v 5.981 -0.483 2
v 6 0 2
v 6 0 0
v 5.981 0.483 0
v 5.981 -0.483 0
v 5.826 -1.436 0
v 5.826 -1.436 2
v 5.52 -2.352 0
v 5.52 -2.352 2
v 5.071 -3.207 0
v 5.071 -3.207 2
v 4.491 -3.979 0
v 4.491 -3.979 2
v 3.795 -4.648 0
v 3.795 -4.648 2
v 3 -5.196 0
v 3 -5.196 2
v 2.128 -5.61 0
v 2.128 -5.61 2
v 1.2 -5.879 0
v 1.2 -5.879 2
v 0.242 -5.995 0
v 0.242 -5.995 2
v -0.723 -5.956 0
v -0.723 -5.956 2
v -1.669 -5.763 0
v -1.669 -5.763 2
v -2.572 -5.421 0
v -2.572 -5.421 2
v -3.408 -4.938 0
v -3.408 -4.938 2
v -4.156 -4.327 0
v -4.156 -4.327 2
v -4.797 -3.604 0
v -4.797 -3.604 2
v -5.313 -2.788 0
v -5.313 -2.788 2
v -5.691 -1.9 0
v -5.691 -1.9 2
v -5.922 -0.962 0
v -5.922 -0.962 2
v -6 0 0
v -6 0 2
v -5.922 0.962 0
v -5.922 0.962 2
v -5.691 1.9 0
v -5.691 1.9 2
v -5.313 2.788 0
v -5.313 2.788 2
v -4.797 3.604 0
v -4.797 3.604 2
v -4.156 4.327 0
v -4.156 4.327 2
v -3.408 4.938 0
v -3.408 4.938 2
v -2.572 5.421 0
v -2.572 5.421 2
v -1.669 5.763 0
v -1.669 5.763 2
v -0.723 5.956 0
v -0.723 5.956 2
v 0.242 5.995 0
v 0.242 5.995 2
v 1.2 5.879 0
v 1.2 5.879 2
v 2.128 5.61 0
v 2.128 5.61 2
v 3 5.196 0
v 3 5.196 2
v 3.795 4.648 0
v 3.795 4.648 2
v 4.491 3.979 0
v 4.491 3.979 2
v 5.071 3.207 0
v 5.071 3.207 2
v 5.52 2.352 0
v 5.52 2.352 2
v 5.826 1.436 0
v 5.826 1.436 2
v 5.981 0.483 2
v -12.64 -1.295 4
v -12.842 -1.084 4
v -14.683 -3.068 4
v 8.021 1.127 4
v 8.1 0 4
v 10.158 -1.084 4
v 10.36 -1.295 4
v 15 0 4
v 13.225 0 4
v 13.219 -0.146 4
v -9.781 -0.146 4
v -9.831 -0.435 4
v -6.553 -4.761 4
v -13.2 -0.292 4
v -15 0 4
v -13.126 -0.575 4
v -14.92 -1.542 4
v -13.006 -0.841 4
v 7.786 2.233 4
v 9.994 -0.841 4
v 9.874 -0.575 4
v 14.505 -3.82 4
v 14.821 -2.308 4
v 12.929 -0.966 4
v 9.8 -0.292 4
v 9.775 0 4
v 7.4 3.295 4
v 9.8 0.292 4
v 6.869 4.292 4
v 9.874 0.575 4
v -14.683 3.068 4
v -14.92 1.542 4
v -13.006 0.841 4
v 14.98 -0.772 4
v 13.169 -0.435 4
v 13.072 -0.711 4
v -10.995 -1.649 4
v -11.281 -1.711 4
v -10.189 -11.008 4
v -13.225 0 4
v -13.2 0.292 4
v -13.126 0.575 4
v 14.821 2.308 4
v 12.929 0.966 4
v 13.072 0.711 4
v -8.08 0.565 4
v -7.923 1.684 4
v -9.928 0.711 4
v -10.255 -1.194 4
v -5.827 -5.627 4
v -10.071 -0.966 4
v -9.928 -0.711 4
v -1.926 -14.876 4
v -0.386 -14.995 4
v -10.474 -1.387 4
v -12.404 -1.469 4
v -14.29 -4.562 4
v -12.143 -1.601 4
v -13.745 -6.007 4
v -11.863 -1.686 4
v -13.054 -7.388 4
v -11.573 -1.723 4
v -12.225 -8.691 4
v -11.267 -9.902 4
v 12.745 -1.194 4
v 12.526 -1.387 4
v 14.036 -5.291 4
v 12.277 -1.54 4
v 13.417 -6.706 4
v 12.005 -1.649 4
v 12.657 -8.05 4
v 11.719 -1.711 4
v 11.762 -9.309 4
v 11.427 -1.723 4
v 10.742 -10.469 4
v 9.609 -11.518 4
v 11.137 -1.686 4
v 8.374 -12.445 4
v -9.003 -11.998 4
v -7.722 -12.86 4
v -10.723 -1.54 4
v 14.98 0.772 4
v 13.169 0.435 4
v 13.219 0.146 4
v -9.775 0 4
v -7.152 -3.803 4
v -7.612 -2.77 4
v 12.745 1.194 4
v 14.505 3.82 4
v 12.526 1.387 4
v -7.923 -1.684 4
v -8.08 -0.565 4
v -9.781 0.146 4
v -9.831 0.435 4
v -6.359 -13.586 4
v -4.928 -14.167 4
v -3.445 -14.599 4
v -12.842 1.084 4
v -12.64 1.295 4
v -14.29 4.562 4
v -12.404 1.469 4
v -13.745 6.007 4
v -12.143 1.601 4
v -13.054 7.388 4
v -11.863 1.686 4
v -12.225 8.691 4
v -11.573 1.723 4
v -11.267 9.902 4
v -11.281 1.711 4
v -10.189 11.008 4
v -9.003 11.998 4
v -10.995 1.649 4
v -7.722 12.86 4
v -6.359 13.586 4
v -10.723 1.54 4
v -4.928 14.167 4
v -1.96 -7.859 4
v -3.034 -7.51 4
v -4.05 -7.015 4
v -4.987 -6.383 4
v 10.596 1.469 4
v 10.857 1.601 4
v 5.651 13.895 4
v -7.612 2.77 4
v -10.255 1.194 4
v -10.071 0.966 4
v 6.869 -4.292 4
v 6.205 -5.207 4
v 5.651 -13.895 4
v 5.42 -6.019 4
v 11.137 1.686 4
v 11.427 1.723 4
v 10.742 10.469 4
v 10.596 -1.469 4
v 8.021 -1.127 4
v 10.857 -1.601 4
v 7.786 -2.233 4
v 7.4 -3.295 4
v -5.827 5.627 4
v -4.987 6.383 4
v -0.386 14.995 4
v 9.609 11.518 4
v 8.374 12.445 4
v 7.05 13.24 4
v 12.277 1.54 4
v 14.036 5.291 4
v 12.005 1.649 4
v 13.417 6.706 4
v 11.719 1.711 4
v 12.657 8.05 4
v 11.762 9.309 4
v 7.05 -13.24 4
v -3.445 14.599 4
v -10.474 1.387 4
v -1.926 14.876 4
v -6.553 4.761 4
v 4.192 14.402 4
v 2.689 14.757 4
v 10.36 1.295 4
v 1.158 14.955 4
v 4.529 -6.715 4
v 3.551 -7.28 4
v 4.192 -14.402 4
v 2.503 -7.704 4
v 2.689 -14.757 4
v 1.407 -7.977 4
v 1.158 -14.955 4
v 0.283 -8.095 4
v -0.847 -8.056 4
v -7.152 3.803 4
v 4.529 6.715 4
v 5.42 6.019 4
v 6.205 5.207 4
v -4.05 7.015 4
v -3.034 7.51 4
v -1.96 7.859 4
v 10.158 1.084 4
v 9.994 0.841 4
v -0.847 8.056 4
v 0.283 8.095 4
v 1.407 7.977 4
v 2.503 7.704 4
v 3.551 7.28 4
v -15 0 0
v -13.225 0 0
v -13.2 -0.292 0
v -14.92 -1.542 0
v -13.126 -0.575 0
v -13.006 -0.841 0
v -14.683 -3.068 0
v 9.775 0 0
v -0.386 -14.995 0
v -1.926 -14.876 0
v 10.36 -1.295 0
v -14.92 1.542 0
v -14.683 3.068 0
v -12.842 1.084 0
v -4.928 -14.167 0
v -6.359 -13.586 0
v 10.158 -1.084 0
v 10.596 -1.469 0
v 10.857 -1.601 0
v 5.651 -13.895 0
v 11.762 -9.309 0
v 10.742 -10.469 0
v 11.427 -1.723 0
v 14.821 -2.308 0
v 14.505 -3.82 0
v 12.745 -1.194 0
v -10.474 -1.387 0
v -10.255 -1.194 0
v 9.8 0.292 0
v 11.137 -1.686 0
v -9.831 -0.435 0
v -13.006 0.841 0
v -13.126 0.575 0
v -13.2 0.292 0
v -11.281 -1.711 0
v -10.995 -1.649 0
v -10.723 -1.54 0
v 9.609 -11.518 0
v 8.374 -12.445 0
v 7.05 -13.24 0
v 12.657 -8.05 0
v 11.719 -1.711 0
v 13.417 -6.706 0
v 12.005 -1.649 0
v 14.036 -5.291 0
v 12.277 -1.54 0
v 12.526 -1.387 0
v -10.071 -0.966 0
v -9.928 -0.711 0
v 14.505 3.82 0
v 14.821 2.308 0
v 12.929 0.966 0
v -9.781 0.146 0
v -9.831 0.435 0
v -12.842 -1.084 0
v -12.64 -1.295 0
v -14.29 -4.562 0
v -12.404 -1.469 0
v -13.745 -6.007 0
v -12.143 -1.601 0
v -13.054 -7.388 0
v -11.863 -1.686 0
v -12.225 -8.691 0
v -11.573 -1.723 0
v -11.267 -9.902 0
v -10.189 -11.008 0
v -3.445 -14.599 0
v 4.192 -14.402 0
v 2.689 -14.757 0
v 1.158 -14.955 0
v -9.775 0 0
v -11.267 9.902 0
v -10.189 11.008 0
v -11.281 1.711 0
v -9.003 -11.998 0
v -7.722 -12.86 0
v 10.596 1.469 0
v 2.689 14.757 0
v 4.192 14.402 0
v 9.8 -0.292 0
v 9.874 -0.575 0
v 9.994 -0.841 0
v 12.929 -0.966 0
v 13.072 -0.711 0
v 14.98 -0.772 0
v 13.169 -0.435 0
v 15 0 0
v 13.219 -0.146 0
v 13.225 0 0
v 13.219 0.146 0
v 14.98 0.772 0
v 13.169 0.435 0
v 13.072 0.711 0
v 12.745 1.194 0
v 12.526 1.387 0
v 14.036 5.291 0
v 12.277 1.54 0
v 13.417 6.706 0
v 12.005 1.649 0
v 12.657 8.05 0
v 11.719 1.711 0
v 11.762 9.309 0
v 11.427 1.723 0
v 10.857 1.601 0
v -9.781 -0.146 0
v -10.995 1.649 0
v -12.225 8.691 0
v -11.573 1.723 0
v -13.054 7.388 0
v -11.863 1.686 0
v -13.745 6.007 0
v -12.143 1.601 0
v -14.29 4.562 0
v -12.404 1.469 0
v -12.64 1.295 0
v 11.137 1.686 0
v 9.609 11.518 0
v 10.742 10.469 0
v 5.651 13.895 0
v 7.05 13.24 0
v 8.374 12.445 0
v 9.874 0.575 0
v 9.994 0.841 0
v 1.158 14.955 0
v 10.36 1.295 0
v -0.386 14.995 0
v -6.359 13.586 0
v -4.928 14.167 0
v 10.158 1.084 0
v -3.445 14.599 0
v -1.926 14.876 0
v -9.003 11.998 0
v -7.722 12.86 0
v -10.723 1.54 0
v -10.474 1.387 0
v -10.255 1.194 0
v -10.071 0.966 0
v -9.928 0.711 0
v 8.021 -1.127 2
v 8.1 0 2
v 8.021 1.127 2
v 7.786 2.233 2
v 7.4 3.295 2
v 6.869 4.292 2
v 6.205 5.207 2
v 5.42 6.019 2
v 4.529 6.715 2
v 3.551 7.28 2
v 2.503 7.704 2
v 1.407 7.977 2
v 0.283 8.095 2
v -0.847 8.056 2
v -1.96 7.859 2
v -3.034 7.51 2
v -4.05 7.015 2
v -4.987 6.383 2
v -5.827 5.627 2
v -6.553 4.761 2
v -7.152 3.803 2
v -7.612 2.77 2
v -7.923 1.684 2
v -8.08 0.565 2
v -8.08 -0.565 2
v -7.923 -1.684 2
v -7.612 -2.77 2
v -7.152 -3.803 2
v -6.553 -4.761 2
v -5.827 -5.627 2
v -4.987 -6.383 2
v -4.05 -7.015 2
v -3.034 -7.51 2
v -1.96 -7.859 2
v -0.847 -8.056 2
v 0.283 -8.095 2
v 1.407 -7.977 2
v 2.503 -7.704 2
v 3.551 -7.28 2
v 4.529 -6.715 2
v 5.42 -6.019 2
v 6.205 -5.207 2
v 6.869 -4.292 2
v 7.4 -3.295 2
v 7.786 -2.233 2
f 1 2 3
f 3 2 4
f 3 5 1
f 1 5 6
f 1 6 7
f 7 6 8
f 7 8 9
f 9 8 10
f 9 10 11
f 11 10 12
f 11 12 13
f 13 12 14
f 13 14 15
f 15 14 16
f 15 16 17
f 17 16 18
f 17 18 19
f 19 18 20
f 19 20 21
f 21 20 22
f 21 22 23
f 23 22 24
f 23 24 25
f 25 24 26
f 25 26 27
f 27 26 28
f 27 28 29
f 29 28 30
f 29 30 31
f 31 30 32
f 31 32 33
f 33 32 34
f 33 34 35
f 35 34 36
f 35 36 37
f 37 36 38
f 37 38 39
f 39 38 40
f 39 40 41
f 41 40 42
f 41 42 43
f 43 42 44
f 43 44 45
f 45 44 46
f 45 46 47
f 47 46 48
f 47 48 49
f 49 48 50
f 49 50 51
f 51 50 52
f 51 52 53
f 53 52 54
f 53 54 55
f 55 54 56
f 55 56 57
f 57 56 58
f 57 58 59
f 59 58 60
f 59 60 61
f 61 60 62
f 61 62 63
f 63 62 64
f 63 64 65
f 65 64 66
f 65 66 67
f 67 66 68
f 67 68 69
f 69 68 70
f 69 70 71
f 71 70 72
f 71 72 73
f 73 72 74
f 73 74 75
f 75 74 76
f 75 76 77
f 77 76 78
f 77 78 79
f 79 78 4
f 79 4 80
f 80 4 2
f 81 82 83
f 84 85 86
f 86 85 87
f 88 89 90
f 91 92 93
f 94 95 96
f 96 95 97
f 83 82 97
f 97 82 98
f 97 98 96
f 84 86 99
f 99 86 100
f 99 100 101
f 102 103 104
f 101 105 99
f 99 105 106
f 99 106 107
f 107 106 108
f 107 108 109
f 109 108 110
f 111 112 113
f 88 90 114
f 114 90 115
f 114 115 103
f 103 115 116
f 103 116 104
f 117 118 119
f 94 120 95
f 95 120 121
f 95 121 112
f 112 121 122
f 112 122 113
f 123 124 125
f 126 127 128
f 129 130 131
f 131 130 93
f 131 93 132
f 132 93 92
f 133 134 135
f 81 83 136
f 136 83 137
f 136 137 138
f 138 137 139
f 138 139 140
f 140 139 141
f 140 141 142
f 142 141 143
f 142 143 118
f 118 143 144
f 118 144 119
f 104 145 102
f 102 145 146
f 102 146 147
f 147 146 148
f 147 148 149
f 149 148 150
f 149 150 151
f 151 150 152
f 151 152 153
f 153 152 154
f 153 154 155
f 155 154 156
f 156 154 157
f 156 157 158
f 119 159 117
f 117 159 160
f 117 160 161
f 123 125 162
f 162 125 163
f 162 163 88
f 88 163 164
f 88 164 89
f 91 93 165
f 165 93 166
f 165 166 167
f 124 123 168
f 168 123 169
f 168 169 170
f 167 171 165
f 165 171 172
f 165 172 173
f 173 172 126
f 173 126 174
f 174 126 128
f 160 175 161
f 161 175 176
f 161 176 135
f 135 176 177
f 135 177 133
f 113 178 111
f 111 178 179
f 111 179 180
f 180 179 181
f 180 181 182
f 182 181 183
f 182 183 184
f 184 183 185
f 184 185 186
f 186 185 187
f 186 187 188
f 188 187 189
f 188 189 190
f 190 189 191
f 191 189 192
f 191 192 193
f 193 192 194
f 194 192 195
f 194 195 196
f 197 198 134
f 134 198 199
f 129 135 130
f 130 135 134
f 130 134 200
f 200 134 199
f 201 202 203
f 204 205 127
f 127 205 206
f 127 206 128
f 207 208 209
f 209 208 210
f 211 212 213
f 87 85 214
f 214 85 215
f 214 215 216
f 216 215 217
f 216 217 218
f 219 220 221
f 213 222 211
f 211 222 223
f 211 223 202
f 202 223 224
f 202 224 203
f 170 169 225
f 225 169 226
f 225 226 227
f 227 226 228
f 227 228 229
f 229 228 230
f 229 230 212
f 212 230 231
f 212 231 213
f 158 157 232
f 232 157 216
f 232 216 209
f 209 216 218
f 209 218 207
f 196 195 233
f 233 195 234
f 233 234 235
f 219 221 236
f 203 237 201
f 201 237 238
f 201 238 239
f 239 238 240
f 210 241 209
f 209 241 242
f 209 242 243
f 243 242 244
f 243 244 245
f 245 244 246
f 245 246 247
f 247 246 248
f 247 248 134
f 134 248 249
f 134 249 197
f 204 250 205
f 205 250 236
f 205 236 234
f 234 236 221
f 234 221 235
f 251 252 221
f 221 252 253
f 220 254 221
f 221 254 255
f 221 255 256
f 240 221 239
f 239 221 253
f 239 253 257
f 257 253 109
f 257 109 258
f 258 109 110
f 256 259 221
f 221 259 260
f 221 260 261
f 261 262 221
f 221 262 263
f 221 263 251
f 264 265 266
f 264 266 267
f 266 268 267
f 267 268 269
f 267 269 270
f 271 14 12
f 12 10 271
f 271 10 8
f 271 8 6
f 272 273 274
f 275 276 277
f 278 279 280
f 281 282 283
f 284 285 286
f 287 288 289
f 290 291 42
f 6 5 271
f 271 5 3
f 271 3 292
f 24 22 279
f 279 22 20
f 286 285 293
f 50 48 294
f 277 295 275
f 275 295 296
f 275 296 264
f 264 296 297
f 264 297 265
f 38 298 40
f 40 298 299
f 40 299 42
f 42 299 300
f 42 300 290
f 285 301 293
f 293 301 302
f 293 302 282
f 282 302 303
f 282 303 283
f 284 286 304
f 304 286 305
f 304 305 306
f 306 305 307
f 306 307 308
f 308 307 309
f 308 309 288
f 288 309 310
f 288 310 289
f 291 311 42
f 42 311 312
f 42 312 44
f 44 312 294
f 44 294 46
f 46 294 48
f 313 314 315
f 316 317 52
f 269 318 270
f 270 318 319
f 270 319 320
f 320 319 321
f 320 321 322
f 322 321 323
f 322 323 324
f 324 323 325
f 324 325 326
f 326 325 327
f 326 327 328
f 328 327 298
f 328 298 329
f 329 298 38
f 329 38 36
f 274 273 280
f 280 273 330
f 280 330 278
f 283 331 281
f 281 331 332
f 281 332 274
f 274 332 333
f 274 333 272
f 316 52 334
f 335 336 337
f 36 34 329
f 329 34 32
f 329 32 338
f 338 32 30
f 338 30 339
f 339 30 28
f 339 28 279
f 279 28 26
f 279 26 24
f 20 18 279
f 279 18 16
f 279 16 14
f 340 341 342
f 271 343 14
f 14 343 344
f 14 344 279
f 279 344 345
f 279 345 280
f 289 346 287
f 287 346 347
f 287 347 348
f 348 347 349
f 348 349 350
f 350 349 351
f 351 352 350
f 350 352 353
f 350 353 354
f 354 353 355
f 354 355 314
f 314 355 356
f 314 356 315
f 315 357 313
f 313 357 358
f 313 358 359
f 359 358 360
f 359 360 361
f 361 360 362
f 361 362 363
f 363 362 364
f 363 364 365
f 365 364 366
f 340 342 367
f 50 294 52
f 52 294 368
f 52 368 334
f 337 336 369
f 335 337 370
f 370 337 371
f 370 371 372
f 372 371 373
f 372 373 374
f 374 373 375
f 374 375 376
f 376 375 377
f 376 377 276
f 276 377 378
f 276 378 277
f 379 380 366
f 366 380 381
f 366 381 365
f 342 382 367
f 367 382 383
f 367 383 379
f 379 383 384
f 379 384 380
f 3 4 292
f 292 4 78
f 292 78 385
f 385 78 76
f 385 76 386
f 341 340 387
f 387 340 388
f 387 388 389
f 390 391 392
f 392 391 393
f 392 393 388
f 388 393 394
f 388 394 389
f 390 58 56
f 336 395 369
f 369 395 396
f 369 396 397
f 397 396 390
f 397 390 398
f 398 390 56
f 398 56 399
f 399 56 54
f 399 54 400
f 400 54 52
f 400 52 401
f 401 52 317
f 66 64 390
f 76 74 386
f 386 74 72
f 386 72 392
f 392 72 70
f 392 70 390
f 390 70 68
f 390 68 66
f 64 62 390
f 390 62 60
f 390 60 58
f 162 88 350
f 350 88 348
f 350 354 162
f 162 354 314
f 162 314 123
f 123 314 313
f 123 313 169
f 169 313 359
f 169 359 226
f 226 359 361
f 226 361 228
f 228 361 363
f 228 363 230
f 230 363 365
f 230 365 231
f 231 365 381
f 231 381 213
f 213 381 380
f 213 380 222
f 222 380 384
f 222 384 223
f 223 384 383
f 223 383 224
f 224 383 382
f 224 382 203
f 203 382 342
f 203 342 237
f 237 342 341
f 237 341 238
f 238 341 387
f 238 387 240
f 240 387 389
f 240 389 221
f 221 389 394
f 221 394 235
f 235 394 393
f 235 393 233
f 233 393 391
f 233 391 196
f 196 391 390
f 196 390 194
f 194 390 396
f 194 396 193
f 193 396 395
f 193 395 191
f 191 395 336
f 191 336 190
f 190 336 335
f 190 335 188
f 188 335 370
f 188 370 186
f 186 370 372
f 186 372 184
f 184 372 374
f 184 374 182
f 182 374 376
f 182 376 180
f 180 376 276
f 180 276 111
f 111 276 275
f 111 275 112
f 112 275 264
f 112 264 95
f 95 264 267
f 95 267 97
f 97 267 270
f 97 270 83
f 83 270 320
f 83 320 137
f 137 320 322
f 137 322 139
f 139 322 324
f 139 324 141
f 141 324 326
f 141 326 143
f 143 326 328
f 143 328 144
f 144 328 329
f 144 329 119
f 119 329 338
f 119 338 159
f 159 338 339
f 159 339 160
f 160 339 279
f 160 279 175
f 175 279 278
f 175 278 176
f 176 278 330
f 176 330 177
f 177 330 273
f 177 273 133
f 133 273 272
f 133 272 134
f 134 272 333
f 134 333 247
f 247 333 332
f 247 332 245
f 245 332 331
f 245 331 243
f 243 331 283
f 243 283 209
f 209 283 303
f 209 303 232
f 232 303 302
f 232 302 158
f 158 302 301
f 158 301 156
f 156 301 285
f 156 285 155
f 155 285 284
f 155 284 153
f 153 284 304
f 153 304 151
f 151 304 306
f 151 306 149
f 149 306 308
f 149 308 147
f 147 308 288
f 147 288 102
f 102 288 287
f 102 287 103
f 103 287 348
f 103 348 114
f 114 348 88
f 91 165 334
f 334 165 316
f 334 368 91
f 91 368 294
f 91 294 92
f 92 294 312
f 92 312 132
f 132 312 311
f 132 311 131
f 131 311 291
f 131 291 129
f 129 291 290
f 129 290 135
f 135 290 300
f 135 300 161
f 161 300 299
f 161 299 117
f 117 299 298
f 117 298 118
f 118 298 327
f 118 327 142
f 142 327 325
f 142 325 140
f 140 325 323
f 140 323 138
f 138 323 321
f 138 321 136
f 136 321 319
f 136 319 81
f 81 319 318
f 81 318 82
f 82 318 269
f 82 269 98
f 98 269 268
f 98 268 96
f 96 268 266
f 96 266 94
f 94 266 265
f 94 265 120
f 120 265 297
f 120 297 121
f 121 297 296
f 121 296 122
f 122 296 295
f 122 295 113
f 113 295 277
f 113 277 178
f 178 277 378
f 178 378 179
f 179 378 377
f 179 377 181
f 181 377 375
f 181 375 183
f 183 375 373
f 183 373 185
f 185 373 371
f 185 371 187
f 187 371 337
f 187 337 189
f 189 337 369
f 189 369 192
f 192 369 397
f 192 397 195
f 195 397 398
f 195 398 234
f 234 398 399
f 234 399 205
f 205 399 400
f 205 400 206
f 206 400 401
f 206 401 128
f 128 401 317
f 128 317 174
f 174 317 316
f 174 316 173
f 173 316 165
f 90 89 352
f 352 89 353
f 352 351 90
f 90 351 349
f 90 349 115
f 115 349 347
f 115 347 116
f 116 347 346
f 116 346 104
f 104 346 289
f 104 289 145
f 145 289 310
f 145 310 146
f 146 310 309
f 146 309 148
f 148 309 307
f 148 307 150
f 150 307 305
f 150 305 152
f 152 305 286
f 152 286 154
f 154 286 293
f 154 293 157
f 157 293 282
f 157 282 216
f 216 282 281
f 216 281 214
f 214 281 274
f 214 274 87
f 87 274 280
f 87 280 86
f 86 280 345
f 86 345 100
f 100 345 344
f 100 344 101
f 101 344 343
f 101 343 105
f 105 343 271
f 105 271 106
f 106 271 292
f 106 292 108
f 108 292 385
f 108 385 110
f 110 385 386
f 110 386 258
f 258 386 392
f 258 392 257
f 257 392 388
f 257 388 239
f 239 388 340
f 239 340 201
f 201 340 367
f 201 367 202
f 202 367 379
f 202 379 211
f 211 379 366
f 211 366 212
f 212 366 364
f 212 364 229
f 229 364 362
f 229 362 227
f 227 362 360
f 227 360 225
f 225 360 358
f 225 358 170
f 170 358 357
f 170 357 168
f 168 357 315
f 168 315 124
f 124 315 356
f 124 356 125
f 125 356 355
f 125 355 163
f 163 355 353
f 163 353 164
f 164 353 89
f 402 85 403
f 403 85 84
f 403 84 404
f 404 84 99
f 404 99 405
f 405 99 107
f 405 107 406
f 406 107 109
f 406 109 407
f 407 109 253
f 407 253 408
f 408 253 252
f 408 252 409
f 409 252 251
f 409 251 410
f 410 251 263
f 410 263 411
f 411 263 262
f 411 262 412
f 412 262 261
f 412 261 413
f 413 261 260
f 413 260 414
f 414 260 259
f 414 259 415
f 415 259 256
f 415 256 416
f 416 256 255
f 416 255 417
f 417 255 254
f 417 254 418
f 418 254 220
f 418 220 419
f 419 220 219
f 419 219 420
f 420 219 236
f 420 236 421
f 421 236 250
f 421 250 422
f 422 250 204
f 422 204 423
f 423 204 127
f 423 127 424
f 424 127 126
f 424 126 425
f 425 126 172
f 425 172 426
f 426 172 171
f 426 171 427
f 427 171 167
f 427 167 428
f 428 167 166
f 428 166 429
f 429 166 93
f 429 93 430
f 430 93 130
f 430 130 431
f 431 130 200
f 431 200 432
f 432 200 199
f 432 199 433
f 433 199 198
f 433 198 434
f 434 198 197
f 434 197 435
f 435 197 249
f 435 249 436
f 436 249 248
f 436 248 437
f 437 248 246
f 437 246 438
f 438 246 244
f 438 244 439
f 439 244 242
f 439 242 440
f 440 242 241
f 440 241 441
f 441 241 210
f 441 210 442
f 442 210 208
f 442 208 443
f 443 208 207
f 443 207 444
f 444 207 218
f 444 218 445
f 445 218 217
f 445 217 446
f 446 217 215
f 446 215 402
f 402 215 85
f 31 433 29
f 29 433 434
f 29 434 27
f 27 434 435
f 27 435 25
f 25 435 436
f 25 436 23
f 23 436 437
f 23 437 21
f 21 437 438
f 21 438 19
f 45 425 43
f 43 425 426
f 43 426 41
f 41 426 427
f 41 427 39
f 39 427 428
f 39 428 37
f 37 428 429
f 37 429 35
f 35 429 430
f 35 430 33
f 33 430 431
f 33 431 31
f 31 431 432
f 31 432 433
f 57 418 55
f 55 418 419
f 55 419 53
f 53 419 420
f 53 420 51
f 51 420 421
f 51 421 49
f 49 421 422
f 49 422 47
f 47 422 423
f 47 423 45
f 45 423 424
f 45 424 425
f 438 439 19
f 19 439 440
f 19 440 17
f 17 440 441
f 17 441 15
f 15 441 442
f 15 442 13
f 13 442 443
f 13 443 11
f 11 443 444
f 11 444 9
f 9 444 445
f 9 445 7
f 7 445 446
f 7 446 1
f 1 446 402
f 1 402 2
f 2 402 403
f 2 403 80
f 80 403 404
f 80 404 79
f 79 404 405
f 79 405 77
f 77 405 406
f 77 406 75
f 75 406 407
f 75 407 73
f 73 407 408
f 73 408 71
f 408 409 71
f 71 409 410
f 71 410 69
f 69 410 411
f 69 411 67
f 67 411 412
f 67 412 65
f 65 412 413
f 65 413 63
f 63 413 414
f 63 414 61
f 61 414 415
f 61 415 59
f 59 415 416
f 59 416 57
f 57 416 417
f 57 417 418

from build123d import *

# Parameters (mm, degrees)
SKETCH1_R           = 15
SKETCH1_R_2         = 6
SKETCH1_R_3         = 1.725
BOSS_EXTRUDE1_DEPTH = 4
CUT_EXTRUDE1_START  = -2
SKETCH2_R           = 8.1
SKETCH2_R_2         = 6
CUT_EXTRUDE1_DEPTH  = 2


with BuildPart() as part:
    # Sketch1 → Boss-Extrude1 (new body)
    with BuildSketch(Plane.XY):
        Circle(SKETCH1_R)
        Circle(SKETCH1_R_2, mode=Mode.SUBTRACT)
        with Locations((-11.5, 0)):
            Circle(SKETCH1_R_3, mode=Mode.SUBTRACT)
        with Locations((11.5, 0)):
            Circle(SKETCH1_R_3, mode=Mode.SUBTRACT)
    extrude(amount=BOSS_EXTRUDE1_DEPTH)

    # Sketch2 → Cut-Extrude1 (cut)
    with BuildSketch(Plane.XY.offset(4).offset(CUT_EXTRUDE1_START)):
        Circle(SKETCH2_R)
        Circle(SKETCH2_R_2, mode=Mode.SUBTRACT)
    extrude(amount=CUT_EXTRUDE1_DEPTH, mode=Mode.SUBTRACT)


solid = part.part
